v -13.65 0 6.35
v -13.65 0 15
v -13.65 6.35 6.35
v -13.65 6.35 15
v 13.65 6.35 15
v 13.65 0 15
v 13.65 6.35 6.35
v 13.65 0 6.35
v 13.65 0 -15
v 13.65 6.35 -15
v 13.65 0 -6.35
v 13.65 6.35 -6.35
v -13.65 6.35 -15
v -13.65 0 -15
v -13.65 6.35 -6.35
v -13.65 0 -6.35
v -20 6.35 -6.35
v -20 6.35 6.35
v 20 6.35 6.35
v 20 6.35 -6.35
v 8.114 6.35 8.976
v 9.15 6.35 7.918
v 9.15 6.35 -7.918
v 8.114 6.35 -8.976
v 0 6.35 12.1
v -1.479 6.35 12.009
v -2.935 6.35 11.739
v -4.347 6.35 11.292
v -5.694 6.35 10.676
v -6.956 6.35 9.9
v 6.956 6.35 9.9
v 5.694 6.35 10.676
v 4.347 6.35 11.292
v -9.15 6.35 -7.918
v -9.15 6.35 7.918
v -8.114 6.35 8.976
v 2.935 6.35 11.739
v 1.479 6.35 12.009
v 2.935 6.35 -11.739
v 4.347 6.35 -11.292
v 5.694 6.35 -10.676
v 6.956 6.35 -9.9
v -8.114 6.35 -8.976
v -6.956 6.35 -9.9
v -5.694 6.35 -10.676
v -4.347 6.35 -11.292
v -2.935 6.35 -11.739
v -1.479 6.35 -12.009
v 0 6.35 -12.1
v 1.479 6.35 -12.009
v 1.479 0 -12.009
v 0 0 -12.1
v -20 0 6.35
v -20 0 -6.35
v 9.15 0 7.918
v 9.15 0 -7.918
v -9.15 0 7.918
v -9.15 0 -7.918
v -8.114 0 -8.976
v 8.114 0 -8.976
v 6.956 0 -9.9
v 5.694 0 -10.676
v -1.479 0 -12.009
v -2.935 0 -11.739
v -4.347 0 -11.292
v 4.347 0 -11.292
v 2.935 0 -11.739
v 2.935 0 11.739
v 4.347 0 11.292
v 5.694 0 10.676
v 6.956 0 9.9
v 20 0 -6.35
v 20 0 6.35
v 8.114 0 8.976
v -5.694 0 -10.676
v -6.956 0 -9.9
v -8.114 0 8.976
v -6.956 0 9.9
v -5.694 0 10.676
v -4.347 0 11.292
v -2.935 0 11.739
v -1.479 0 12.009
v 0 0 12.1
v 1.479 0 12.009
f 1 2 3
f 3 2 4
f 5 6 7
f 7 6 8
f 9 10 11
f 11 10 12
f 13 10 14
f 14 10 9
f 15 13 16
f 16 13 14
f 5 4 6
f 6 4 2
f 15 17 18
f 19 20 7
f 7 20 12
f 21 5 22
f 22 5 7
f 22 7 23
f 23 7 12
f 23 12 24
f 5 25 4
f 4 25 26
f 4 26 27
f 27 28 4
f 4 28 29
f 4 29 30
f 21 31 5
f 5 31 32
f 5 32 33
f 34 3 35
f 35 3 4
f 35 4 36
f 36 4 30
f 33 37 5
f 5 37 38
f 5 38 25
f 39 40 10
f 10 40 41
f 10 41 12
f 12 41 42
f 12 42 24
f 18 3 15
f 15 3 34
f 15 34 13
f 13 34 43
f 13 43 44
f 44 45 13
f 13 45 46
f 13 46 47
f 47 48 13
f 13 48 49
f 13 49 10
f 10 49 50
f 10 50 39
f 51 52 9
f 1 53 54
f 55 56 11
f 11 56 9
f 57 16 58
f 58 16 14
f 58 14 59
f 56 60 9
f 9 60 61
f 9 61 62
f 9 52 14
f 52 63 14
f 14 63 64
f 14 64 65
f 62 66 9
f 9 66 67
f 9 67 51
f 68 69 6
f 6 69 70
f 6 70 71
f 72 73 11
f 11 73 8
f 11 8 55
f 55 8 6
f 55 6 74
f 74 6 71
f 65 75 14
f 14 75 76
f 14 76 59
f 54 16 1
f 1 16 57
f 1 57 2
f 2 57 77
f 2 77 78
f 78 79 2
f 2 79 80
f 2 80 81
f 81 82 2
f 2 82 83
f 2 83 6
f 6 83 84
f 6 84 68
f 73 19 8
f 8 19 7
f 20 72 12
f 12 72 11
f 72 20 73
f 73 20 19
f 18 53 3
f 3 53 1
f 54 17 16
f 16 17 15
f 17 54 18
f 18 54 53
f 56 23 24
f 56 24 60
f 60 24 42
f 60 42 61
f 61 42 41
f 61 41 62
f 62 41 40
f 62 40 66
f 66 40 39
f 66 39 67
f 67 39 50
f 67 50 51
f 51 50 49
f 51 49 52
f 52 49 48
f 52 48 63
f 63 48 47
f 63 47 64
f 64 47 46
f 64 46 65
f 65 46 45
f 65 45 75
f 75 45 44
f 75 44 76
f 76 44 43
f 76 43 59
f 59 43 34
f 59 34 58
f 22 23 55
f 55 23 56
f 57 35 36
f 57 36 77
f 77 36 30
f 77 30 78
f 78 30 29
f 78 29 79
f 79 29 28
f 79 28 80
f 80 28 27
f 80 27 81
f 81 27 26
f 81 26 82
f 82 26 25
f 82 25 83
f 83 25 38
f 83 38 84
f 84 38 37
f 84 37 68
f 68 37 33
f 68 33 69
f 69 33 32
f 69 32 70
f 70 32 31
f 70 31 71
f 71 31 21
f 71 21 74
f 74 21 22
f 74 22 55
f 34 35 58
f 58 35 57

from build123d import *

# Parameters (mm, degrees)
SKETCH1_W           = 27.3
SKETCH1_H           = 30
BOSS_EXTRUDE1_DEPTH = 6.35
SKETCH2_W           = 12.7
SKETCH2_H           = 6.35
BOSS_EXTRUDE2_DEPTH = 6.35
CUT_EXTRUDE1_DEPTH  = 7.35


with BuildPart() as part:
    # Sketch1 → Boss-Extrude1 (new body)
    with BuildSketch(Plane(origin=(0, 0, 0), x_dir=(1, 0, 0), z_dir=(0, 1, 0))):
        Rectangle(SKETCH1_W, SKETCH1_H)
    extrude(amount=BOSS_EXTRUDE1_DEPTH)

    # Sketch2 → Boss-Extrude2 (add)
    with BuildSketch(Plane(origin=(13.65, 0, 0), x_dir=(0, 0, -1), z_dir=(1, 0, 0))):
        with Locations((0, 3.175)):
            Rectangle(SKETCH2_W, SKETCH2_H)
    boss_extrude2 = extrude(amount=BOSS_EXTRUDE2_DEPTH)

    # Mirror1: Boss-Extrude2 across plane
    add(boss_extrude2.mirror(Plane(origin=(0, 0, 0), x_dir=(0, 0, 1), z_dir=(1, 0, 0))))

    # Sketch3 → Cut-Extrude1 (cut, through all)
    with BuildSketch(Plane(origin=(0, 6.35, 0), x_dir=(1, 0, 0), z_dir=(0, 1, 0))):
        with BuildLine():
            Line((-9.15, -7.917543811), (-9.15, 7.917543811))
            ThreePointArc((-9.15, 7.917543811), (0, 12.1), (9.15, 7.917543811))
            Line((9.15, 7.917543811), (9.15, -7.917543811))
            ThreePointArc((9.15, -7.917543811), (0, -12.1), (-9.15, -7.917543811))
        make_face()
    extrude(amount=-CUT_EXTRUDE1_DEPTH, mode=Mode.SUBTRACT)


solid = part.part
